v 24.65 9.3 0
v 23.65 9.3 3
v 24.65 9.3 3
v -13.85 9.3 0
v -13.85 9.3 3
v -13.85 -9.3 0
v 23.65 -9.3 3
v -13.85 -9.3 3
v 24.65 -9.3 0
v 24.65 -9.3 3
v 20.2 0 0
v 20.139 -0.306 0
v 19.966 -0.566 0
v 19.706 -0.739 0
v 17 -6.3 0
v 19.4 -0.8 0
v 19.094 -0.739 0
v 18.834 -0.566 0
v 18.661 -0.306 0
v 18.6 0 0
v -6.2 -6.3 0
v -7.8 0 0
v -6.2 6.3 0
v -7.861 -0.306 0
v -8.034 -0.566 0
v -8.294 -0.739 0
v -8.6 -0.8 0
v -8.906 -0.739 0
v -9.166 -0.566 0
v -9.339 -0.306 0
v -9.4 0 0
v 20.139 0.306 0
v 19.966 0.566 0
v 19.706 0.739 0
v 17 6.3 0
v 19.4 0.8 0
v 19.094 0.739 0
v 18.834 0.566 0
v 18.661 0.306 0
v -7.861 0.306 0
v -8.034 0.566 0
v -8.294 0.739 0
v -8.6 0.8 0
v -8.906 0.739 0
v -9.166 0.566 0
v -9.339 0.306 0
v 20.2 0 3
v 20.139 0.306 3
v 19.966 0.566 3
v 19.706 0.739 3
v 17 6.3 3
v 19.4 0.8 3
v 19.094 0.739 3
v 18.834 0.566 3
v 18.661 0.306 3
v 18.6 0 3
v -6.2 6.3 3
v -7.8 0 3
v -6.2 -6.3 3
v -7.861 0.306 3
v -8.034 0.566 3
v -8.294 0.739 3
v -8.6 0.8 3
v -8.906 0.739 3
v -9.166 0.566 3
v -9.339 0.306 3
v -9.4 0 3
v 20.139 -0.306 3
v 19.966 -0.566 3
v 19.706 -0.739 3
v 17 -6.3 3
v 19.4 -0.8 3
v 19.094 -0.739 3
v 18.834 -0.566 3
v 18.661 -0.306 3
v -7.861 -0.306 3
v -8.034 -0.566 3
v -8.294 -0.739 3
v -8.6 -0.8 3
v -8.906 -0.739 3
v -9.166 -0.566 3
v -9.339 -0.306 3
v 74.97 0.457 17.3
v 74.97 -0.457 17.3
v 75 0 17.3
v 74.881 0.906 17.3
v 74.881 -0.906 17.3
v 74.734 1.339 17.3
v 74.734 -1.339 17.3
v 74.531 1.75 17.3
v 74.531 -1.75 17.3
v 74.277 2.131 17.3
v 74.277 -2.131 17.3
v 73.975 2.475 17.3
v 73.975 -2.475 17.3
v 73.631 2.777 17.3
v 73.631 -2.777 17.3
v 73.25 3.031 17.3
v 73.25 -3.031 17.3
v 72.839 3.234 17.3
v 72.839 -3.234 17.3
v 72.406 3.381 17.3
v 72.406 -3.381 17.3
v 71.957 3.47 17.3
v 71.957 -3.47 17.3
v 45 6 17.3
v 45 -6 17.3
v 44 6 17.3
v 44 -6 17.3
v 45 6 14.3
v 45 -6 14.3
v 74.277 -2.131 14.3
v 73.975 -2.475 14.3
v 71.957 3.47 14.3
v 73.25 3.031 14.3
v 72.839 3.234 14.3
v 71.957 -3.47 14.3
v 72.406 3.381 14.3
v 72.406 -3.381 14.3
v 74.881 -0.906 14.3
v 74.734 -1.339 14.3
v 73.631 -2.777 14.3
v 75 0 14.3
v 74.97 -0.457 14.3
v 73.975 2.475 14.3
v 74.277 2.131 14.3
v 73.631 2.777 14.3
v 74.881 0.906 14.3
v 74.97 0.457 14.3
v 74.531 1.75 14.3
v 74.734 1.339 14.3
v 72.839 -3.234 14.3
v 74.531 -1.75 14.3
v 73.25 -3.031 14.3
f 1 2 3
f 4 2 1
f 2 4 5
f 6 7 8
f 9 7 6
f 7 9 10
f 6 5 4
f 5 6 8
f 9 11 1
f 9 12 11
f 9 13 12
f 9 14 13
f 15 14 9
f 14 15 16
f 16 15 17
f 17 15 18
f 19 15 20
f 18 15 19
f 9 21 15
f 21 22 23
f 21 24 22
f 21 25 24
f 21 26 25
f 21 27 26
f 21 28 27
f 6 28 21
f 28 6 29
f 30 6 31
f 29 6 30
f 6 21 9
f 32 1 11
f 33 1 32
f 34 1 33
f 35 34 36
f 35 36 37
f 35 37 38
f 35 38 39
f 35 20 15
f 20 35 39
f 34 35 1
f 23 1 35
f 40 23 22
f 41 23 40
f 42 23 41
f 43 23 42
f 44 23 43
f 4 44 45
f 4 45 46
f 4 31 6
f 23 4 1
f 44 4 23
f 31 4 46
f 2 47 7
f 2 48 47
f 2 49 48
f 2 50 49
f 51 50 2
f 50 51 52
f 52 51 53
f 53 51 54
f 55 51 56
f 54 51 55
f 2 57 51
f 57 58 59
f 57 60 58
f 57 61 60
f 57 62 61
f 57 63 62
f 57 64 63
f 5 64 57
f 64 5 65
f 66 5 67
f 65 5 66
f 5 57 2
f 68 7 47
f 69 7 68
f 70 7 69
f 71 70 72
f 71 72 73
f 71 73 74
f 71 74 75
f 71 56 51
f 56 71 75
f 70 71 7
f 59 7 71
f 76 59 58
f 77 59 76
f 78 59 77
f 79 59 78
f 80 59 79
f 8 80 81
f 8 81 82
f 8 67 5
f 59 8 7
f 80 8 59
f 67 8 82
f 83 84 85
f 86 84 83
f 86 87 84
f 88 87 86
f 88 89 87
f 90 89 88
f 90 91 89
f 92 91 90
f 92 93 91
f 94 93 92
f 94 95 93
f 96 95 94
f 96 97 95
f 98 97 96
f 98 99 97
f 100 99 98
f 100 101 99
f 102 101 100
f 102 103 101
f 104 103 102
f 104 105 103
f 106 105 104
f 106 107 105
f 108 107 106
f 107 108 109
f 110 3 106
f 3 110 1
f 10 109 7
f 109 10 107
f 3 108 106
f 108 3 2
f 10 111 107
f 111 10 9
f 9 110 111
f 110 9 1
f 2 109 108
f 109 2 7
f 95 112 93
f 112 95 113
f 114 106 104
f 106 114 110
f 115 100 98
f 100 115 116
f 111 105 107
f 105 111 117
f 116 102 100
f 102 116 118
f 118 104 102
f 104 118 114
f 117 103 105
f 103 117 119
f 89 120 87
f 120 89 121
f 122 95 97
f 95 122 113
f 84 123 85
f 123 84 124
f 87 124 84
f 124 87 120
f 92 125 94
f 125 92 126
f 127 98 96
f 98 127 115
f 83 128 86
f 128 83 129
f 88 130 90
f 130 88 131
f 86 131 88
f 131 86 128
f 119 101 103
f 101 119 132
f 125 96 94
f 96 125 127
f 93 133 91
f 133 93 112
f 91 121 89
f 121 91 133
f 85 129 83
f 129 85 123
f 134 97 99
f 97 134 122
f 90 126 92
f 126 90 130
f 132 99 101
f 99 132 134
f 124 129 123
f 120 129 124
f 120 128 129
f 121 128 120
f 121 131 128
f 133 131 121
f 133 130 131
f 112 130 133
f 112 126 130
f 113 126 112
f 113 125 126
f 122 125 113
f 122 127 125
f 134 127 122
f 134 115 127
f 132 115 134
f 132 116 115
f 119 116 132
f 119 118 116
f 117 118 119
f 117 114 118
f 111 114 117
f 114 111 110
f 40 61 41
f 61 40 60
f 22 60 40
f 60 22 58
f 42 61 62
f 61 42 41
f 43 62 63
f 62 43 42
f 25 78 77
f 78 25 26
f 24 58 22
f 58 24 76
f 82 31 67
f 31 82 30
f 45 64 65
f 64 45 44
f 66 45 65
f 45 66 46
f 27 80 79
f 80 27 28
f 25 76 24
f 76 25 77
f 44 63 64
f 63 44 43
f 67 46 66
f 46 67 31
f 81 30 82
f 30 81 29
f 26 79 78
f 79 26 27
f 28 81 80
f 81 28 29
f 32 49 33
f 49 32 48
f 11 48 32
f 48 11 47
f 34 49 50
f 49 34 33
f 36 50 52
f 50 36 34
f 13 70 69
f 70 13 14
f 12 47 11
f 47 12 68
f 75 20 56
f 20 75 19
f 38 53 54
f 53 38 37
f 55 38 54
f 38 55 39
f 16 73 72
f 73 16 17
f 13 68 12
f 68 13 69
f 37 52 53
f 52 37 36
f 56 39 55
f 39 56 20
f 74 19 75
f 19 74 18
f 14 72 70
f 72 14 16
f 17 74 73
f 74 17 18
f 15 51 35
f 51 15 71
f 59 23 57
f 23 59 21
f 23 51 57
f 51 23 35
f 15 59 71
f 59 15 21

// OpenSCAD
// file: params.scad
// 18 舵机六足 · 3D 打印机身 · 共享参数和公共模块（本文件自己不导出 STL）
//
// 腿的几何尺寸和固件 firmware/hexapod_g7pro/params.h 的默认值一一对应：
//   coxa_len ↔ coxa    femur_len ↔ femur    tibia_len ↔ tibia
//   front_x / front_y / front_angle / mid_y / rear_x / rear_y / rear_angle 同名
// 所以打印这套机身，固件的腿长和安装位置参数都不用改。
//
// 坐标约定（和固件一致）：
//   机身坐标：X+ = 前，Y+ = 左，Z+ = 上，原点 = 机身中心，高度原点 = 大腿舵机轴。
//   腿坐标：原点 = 基节转轴，X+ = 腿朝外，Y+ = 逆时针一侧，Z+ = 上。
// 6 条腿的零件完全一样（不分左右），左右舵机转向的差别由固件里的 dir 参数处理。

/* [舵机 MG90S（量你自己的）] */
servo_w = 12.2;           // 机身宽度 (mm)
servo_l = 22.8;           // 机身长度，沿安装耳方向 (mm)
ear_span = 32.5;          // 两个安装耳外端之间的总长 (mm)
ear_hole_spacing = 28.0;  // 两个安装孔的中心距 (mm)
ear_z = 15.9;             // 机壳底面 → 安装耳下表面 (mm)
ear_t = 2.5;              // 安装耳厚度 (mm)
case_h = 22.7;            // 机壳底面 → 机壳顶面（不含输出轴）(mm)
shaft_off = 5.4;          // 输出轴中心 → 机身中心，沿长度方向 (mm)
shaft_gap = 4.0;          // 机壳顶面 → 舵机臂贴合面 (mm)

/* [舵机臂（单边臂，量你自己的）] */
horn_hub_d = 7.6;         // 舵机臂中心圆盘直径 (mm)
horn_len = 18.5;          // 中心 → 臂尖 (mm)
horn_w_hub = 6.2;         // 臂根宽度 (mm)
horn_w_tip = 4.2;         // 臂尖宽度 (mm)
horn_t = 1.6;             // 臂厚 = 零件上凹槽深度 (mm)
horn_holes = [10.5, 14.5];// 固定舵机臂的两个孔到中心的距离 (mm)
horn_screw_access = 5.5;  // 中心过孔：舵机臂中心螺丝和螺丝刀从这里进 (mm)

/* [腿的几何（和固件 params.h 一致）] */
coxa_len = 28;            // 基节转轴 → 大腿舵机轴 (mm)
femur_len = 50;           // 大腿舵机轴 → 小腿舵机轴 (mm)
tibia_len = 75;           // 小腿舵机轴 → 脚尖 (mm)
front_x = 60; front_y = 40; front_angle = 45;
mid_y = 55;
rear_x = 60; rear_y = 40; rear_angle = 135;

/* [打印余量和螺丝] */
clearance = 0.4;          // 方孔比舵机大多少 (mm)；太紧改 0.5
screw_pilot = 1.6;        // M2 自攻螺丝底孔（舵机安装耳）(mm)
horn_screw_hole = 2.0;    // 舵机臂固定螺丝过孔 (mm)
m3_hole = 3.4;            // M3 通孔 (mm)

/* [机身] */
plate_t = 3.0;            // 底板 / 甲板厚度 (mm)
standoff_h = 25;          // 底板和甲板之间的 M3 铜柱长度 (mm)
bar_t = 4.0;              // 大腿板厚度 (mm)
mount_t = 3.0;            // 舵机安装板厚度 (mm)
coxa_horn_z = 11;         // 基节舵机臂贴合面高度（相对大腿轴）(mm)

/* [Hidden] */
// 6 条腿：[髋轴 X, 髋轴 Y, 朝向°]，顺序 LF LM LR RF RM RR（和固件 leg 0..5 一致）
legs = [
  [ front_x,  front_y,  front_angle],
  [ 0,        mid_y,    90],
  [-rear_x,   rear_y,   rear_angle],
  [ front_x, -front_y, -front_angle],
  [ 0,       -mid_y,   -90],
  [-rear_x,  -rear_y,  -rear_angle]
];
leg_names = ["LF", "LM", "LR", "RF", "RM", "RR"];

pocket_w = servo_w + clearance;
pocket_l = servo_l + clearance;
// 舵机本地坐标：输出轴 = +Z，舵机臂贴合面在 z = 0，机身沿 +X 伸出（机身中心 x = shaft_off）
ear_low = -shaft_gap - case_h + ear_z;       // 安装耳“朝机壳底”的那一面，安装板贴在这里
plate_top_z = coxa_horn_z + ear_low;         // 底板上表面高度（相对大腿轴）
deck_z = plate_top_z + standoff_h;           // 甲板下表面高度

module at_leg(l) translate([l[0], l[1]]) rotate(l[2]) children();

// 舵机实体（装配预览 / 干涉检查用）
module servo_body() {
  color("DimGray") {
    translate([shaft_off - servo_l / 2, -servo_w / 2, -shaft_gap - case_h]) cube([servo_l, servo_w, case_h]);
    // 耳朵和输出轴都留 0.05 mm，避免“刚好贴着”被干涉检查当成碰撞
    translate([shaft_off - ear_span / 2, -servo_w / 2, ear_low + 0.05]) cube([ear_span, servo_w, ear_t - 0.05]);
    translate([0, 0, -shaft_gap]) cylinder(d = 5, h = shaft_gap - 0.05);
  }
}

// 安装板上的舵机方孔 + 两个安装耳螺丝底孔（在舵机本地坐标里，穿过安装板）
module servo_mount_cut() {
  translate([shaft_off - pocket_l / 2, -pocket_w / 2, ear_low - mount_t - 1]) cube([pocket_l, pocket_w, mount_t + 2]);
  for (s = [-1, 1]) translate([shaft_off + s * ear_hole_spacing / 2, 0, ear_low - mount_t - 1])
    cylinder(d = screw_pilot, h = mount_t + 2, $fn = 16);
}

// 单边舵机臂的 2D 外形：中心在原点，臂沿 +X
module horn_2d(extra = 0) {
  hull() {
    circle(d = horn_hub_d + extra);
    translate([0, -(horn_w_hub + extra) / 2]) square([0.01, horn_w_hub + extra]);
    translate([horn_len - horn_w_tip / 2, 0]) circle(d = horn_w_tip + extra);
  }
}

// 舵机臂凹槽：从 z = 0 往 +Z 挖 horn_t 深，加中心过孔和两个螺丝过孔（贯穿 depth）
module horn_cut(depth) {
  translate([0, 0, -0.01]) linear_extrude(horn_t + 0.01) horn_2d(clearance);
  translate([0, 0, -1]) cylinder(d = horn_screw_access, h = depth + 2, $fn = 24);
  for (r = horn_holes) translate([r, 0, -1]) cylinder(d = horn_screw_hole, h = depth + 2, $fn = 16);
}
// file: parts.scad
// 18 舵机六足 · 3D 打印机身 · 所有零件的模块（装配坐标）
// 各个 *.scad 包装文件调用这里的模块，并把零件转成适合打印 / 下单的姿态。
include <params.scad>

$fn = 48;

// ---------------- 前方传感器 ----------------
/* [超声波 HC-SR04] */
us_hole_d = 16.6;         // 探头孔直径 (mm)
us_spacing = 26;          // 两个探头中心距 (mm)
us_center_h = 14;         // 探头中心离甲板上表面 (mm)
/* [摄像头模块：亚博 ESP32-S3 WiFi 图传模块 Lite（YB-MEV04），量你自己的] */
cam_w = 35;               // 板子宽度（左右）(mm)
cam_h = 46;               // 板子高度（上下）(mm)
cam_d = 12;               // 板子厚度，含背面排针 / 排母 (mm)
cam_gap = 0.6;            // 托架比板子大多少 (mm)
cam_base_h = 30;          // 托架底面离甲板上表面 (mm)

// ---------------- 基节支架 coxa ----------------
// 装在基节舵机的舵机臂上（在舵机上面），侧面的竖板夹住大腿舵机。
top_t = 4.0;              // 顶板厚度 (mm)
hub_r = 10;               // 转轴处圆盘半径 (mm)
coxa_horn_angle = -45;    // 舵机臂在顶板下面的朝向（腿坐标，°）

femur_servo_y = -bar_t / 2;                      // 大腿舵机臂贴合面的 Y
wall_y1 = femur_servo_y + ear_low;               // 竖板贴安装耳的一面
wall_y0 = wall_y1 - mount_t;
wall_x0 = coxa_len + shaft_off - ear_span / 2 - 3;
wall_x1 = coxa_len + shaft_off + ear_span / 2 + 3;
wall_z0 = -pocket_w / 2 - 3;
top_y_max = -7;           // 顶板在竖板一侧最多伸到的 Y（再往 +Y 会碰到抬起的大腿）

module femur_servo_frame() translate([coxa_len, femur_servo_y, 0]) rotate([-90, 0, 0]) children();

// 顶板 = 转轴处的圆盘（连到竖板的起点）+ 竖板上方的一条窄板。
// 不能整体 hull：那样顶板会伸到 y = 0 附近，大腿抬起来时会撞上。
module coxa_top_2d() {
  hull() {
    circle(r = hub_r);
    rotate(coxa_horn_angle) translate([horn_len - 2, 0]) circle(r = 4.5);
    translate([wall_x0, wall_y0]) square([2, top_y_max - wall_y0]);
  }
  translate([wall_x0, wall_y0]) square([wall_x1 - wall_x0, top_y_max - wall_y0]);
}

module coxa_bracket() {
  difference() {
    union() {
      translate([0, 0, coxa_horn_z]) linear_extrude(top_t) coxa_top_2d();
      translate([wall_x0, wall_y0, wall_z0]) cube([wall_x1 - wall_x0, mount_t, coxa_horn_z + top_t - wall_z0]);
      // 竖板和顶板之间的三角加强筋（在大腿舵机上方）
      for (x = [wall_x0, wall_x1 - 2.5])
        translate([x, wall_y1 - 0.01, coxa_horn_z + 0.01]) rotate([90, 0, 90]) linear_extrude(2.5)
          polygon([[0, 0], [top_y_max - wall_y1 + 0.01, 0], [0, -(coxa_horn_z - pocket_w / 2 - 0.8)]]);
    }
    translate([0, 0, coxa_horn_z]) rotate(coxa_horn_angle) horn_cut(top_t);
    femur_servo_frame() servo_mount_cut();
  }
}

// ---------------- 大腿 femur ----------------
// 一块平板：一头压大腿舵机的舵机臂（-Y 面），另一头压小腿舵机的舵机臂（+Y 面）。
femur_hub_r = 8.5;

module femur_bar() {
  difference() {
    translate([0, bar_t / 2, 0]) rotate([90, 0, 0]) linear_extrude(bar_t)
      hull() { circle(r = femur_hub_r); translate([femur_len, 0]) circle(r = femur_hub_r); }
    translate([0, -bar_t / 2, 0]) rotate([-90, 0, 0]) horn_cut(bar_t);
    translate([femur_len, bar_t / 2, 0]) rotate([90, 0, 0]) rotate([0, 0, 180]) horn_cut(bar_t);
  }
}

// ---------------- 小腿 tibia ----------------
// 小腿舵机装在上半截的安装板里，输出轴朝 -Y 压在大腿板上；下半截斜着收回到腿的中心平面，脚尖在 y = 0。
tib_plate_y0 = bar_t / 2 - ear_low;              // 安装板贴安装耳的一面
tib_x0 = shaft_off - ear_span / 2 - 3;
tib_x1 = shaft_off + ear_span / 2 + 3;
tib_half_w = pocket_w / 2 + 3;
foot_r = 3.5;
foot_t = 3.0;

module tibia_servo_frame() translate([0, bar_t / 2, 0]) rotate([90, 0, 0]) children();

module tibia_part() {
  difference() {
    union() {
      translate([tib_x0, tib_plate_y0, -tib_half_w]) cube([tib_x1 - tib_x0, mount_t, 2 * tib_half_w]);
      hull() {
        translate([tib_x1 - 1, tib_plate_y0, -tib_half_w]) cube([1, mount_t, 2 * tib_half_w]);
        translate([44, -foot_t / 2, -6]) cube([1, foot_t, 12]);
      }
      hull() {
        translate([44, -foot_t / 2, -6]) cube([1, foot_t, 12]);
        translate([tibia_len - foot_r, foot_t / 2, 0]) rotate([90, 0, 0]) cylinder(r = foot_r, h = foot_t);
      }
    }
    tibia_servo_frame() servo_mount_cut();
  }
}

// ---------------- 机身底板 ----------------
// 6 个基节舵机从上往下插进方孔，安装耳压在底板上表面；输出轴朝上，基节支架装在上面。
standoffs = [[30, 28], [30, -28], [-30, 28], [-30, -28]];
inner_inset = 14;         // 内六边形顶点：髋轴往里多少 (mm)
pad_r = 13;               // 每个髋轴周围的圆盘半径 (mm)

module coxa_servo_frame(l) translate([l[0], l[1], coxa_horn_z]) rotate(l[2]) rotate(180) children();

module inner_hex_2d(inset) {
  hull() for (l = legs) at_leg(l) translate([-inset, 0]) circle(r = 0.01);
}

module body_plate_2d() {
  union() {
    inner_hex_2d(inner_inset);
    for (l = legs) at_leg(l) {
      circle(r = pad_r);
      translate([-(shaft_off + ear_span / 2 + 3), -(pocket_w / 2 + 3)])
        square([shaft_off + ear_span / 2 + 3, pocket_w + 6]);
    }
  }
}

module body_plate() {
  difference() {
    translate([0, 0, plate_top_z - plate_t]) linear_extrude(plate_t) difference() {
      body_plate_2d();
      for (p = standoffs) translate(p) circle(d = m3_hole);
      for (s = [-1, 1]) translate([0, s * 24]) square([20, 3], center = true);        // 电池魔术贴扎带槽
      for (sx = [-1, 1], sy = [-1, 1]) translate([sx * 20, sy * 34]) square([12, 6], center = true);  // 走线孔
      for (s = [-1, 1]) translate([s * 44, 0]) square([6, 20], center = true);         // 走线孔
    }
    for (l = legs) coxa_servo_frame(l) servo_mount_cut();
    // 上表面刻一个朝前的箭头
    translate([12, 0, plate_top_z - 0.6]) linear_extrude(1) polygon([[8, 0], [-4, 5], [-4, -5]]);
  }
}

// ---------------- 甲板（上层）+ 前面的传感器支架 ----------------
deck_inset = 16;
front_x_deck = front_x - deck_inset * cos(front_angle);   // 甲板前缘 X
front_plate_t = 3;
front_plate_w = 52;
front_plate_h = cam_base_h + cam_h + 4;

module deck_2d() {
  difference() {
    inner_hex_2d(deck_inset);
    for (p = standoffs) translate(p) circle(d = m3_hole);
    // 10 mm 间距 M3 孔阵：固定 ESP32 扩展板（用 M3 尼龙柱，孔位不对就用最近的孔 + 扎带）
    for (x = [-30 : 10 : 20], y = [-20 : 10 : 20])
      if (min([for (p = standoffs) norm([x, y] - p)]) > 7) translate([x, y]) circle(d = m3_hole);
    for (sx = [-1, 1], sy = [-1, 1]) translate([sx * 20, sy * 30]) square([12, 5], center = true);  // 走线孔
  }
}

module front_mount() {
  x1 = front_x_deck;          // 前面板外表面
  x0 = x1 - front_plate_t;
  z0 = deck_z + plate_t;      // 甲板上表面
  difference() {
    union() {
      translate([x0, -front_plate_w / 2, z0 - 0.01]) cube([front_plate_t, front_plate_w, front_plate_h]);
      // 背后的两块三角加强筋
      for (y = [-front_plate_w / 2, front_plate_w / 2 - 3])
        translate([x0 + 0.01, y, z0 - 0.01]) rotate([90, 0, 0]) translate([0, 0, -3])
          linear_extrude(3) polygon([[0, 0], [-22, 0], [0, 40]]);
      // 摄像头托架：底板 + 前挡边
      translate([x1 - 0.01, -(cam_w + cam_gap) / 2 - 2, z0 + cam_base_h - 3])
        cube([cam_d + cam_gap + 2.5, cam_w + cam_gap + 4, 3]);
      translate([x1 + cam_d + cam_gap, -(cam_w + cam_gap) / 2 - 2, z0 + cam_base_h - 3])
        cube([2.5, cam_w + cam_gap + 4, 6]);
      // 托架两边的侧挡
      for (s = [-1, 1])
        translate([x1 - 0.01, s > 0 ? (cam_w + cam_gap) / 2 : -(cam_w + cam_gap) / 2 - 2, z0 + cam_base_h - 3])
          cube([cam_d + cam_gap + 2.5, 2, 14]);
    }
    // 超声波探头孔
    for (s = [-1, 1]) translate([x0 - 1, s * us_spacing / 2, z0 + us_center_h]) rotate([0, 90, 0])
      cylinder(d = us_hole_d, h = front_plate_t + 2, $fn = 64);
    // 摄像头板背后的窗口：排针和杜邦线从这里穿到后面
    translate([x0 - 1, -(cam_w - 8) / 2, z0 + cam_base_h + 5]) cube([front_plate_t + 2, cam_w - 8, cam_h - 12]);
    // 扎带槽：两道扎带把摄像头板绑在面板上
    for (s = [-1, 1], h = [0.3, 0.75])
      translate([x0 - 1, s * ((cam_w + cam_gap) / 2 + 4.5) - 1.5, z0 + cam_base_h + h * cam_h - 2])
        cube([front_plate_t + 2, 3, 4]);
    // 超声波板背后的扎带孔
    for (s = [-1, 1]) translate([x0 - 1, s * (us_spacing / 2 + 12) - 1.5, z0 + us_center_h - 2])
      cube([front_plate_t + 2, 3, 4]);
  }
}

module deck() {
  translate([0, 0, deck_z]) linear_extrude(plate_t) deck_2d();
  front_mount();
}
// main file
// 小腿 tibia：打 6 个（6 条腿通用）。舵机安装板一面朝下。
include <parts.scad>
translate([0, 0, tib_plate_y0 + mount_t]) rotate([-90, 0, 0]) tibia_part();
